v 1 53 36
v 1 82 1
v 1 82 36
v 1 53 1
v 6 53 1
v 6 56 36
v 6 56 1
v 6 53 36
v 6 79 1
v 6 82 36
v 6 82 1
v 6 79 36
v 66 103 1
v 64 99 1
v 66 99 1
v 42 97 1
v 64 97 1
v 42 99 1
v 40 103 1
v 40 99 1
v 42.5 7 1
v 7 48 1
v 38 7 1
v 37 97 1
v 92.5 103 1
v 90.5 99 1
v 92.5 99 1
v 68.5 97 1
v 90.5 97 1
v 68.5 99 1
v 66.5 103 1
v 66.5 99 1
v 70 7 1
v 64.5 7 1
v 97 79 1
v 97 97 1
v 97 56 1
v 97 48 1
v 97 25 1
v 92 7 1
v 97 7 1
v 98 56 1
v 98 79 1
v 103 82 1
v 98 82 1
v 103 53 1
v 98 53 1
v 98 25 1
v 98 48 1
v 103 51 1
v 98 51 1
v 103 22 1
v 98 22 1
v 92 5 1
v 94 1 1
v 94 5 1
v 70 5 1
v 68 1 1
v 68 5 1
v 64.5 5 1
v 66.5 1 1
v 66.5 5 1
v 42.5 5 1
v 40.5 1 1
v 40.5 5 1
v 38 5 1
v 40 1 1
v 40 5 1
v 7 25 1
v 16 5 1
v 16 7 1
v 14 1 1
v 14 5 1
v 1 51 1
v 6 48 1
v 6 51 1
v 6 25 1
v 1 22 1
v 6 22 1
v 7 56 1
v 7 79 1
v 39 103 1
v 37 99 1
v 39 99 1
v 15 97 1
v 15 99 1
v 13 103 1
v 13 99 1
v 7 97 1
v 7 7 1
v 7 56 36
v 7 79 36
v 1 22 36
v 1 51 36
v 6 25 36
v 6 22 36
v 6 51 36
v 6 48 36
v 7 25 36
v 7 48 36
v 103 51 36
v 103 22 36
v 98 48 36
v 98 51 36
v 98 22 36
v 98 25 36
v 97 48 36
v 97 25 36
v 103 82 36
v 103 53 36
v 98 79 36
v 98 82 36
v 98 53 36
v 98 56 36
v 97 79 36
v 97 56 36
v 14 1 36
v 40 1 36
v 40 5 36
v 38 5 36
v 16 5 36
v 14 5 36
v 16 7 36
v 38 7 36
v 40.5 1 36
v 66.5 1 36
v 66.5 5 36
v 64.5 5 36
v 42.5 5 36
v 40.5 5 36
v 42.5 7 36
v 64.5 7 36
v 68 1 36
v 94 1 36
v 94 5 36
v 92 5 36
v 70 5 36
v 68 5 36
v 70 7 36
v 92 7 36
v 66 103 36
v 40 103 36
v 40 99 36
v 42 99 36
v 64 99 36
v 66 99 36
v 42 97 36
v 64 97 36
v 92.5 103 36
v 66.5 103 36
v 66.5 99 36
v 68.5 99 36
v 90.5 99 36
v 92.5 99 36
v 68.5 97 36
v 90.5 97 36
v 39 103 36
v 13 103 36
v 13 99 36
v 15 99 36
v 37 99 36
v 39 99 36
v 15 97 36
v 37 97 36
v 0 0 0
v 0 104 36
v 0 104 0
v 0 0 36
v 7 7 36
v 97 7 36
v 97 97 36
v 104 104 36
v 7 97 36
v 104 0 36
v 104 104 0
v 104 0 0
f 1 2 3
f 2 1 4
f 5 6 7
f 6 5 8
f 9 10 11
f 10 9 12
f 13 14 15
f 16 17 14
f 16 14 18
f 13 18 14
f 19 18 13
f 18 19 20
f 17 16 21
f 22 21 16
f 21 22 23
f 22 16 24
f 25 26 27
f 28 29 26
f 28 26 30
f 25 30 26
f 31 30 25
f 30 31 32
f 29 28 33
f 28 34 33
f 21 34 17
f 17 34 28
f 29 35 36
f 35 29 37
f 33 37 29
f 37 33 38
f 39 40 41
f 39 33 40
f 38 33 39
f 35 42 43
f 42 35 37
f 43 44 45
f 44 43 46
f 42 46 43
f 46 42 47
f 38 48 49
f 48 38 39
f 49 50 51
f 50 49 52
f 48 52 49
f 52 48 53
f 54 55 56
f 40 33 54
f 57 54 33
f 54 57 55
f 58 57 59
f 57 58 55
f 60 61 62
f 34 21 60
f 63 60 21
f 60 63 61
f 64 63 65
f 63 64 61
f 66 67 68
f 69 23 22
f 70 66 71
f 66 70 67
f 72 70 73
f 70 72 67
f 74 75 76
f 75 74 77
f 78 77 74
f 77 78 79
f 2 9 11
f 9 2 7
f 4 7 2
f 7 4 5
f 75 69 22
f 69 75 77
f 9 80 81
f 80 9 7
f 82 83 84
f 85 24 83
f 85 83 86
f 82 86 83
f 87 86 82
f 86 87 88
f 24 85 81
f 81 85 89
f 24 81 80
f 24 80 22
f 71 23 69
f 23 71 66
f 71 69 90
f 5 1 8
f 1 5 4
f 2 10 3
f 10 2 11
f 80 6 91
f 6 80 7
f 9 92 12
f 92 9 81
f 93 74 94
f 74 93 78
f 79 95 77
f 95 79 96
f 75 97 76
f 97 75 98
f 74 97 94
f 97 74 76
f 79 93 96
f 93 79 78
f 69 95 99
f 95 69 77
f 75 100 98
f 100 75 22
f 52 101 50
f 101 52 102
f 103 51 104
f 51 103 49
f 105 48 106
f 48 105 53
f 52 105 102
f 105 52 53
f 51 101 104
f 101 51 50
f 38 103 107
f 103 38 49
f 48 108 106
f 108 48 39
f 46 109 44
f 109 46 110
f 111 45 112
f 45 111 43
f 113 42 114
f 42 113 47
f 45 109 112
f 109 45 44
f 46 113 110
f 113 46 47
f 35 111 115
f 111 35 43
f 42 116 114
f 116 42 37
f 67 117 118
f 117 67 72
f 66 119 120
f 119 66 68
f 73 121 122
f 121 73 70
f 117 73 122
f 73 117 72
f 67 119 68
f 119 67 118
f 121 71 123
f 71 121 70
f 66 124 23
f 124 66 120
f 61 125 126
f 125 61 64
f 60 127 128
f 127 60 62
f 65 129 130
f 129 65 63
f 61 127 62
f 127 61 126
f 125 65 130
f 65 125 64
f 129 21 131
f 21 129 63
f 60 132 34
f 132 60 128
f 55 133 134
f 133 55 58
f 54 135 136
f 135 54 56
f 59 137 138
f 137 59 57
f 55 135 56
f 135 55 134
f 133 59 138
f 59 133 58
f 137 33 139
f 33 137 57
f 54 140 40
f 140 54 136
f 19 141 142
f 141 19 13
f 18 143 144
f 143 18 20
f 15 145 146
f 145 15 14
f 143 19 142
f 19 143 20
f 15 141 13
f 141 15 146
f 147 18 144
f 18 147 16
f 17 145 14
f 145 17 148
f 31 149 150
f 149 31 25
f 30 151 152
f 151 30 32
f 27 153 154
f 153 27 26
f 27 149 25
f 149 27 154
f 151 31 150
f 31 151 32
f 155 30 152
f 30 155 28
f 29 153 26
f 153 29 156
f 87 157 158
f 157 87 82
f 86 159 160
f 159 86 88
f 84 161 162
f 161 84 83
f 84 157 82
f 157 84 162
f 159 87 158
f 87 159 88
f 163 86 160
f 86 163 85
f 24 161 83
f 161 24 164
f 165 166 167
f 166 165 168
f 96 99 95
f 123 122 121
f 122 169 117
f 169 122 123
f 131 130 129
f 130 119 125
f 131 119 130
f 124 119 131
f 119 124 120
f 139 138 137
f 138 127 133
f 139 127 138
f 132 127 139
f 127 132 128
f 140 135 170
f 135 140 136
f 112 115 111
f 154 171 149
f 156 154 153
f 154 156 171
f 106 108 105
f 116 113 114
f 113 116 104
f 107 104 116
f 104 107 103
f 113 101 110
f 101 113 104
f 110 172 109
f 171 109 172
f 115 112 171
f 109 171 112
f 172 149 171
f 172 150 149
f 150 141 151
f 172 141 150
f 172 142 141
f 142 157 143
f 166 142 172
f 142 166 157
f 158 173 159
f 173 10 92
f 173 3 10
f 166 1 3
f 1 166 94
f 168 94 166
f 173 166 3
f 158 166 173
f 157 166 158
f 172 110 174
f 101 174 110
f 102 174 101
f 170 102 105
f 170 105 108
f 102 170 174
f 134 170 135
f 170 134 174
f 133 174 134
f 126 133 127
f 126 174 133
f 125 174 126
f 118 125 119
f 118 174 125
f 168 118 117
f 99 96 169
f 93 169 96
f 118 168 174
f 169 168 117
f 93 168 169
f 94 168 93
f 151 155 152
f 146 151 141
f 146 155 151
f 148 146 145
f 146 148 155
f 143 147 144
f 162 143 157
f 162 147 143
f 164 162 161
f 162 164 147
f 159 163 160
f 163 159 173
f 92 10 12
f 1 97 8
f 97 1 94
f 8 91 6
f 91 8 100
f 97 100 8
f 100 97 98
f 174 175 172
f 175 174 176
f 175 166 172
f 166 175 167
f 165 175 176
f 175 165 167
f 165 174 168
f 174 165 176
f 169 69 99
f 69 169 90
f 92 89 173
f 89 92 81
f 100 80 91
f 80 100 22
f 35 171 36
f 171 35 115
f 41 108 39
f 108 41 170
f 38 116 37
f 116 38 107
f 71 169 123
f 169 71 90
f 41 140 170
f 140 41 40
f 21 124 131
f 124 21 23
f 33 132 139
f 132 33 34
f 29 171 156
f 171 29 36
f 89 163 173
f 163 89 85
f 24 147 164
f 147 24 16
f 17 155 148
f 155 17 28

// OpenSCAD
BOX_X = 104;
BOX_Y = 104;
BOX_Z = 36;

THICK = 1;
MARGIN = 6;


MODEL_W = 4;
MODEL_L = 26;
MODEL_M = 2;

DS_MODEL_W = 5;
DS_MODEL_L = 29;
DS_MODEL_M = 3;

difference() {
    cube(size = [
        BOX_X,
        BOX_Y, 
        BOX_Z]);

    translate([
        MARGIN + THICK, 
        MARGIN + THICK, 
        THICK]) {
            
        cube(size = [
            BOX_X - (MARGIN * 2) - (THICK * 2),
            BOX_Y - (MARGIN * 2) - (THICK * 2),
            BOX_Z]);
    }

    ds_modelSlot(THICK, (BOX_Y / 2) + 1, 0);
    ds_modelSlot(THICK, (BOX_Y / 2) - DS_MODEL_L - 1, 0);

    ds_modelSlot(THICK - BOX_X, -((BOX_Y / 2) - 1), 180);
    ds_modelSlot(THICK - BOX_X, -((BOX_Y / 2) + DS_MODEL_L + 1), 180);

    modelSlot(THICK, -40, 90);
    modelSlot(THICK, -((BOX_Y / 2) + (DS_MODEL_L / 2)), 90);
    modelSlot(THICK, -94, 90);
    
    modelSlot(THICK - BOX_X, 40, 270);
    modelSlot(THICK - BOX_X, (BOX_Y / 2) + (DS_MODEL_L / 2), 270);
    modelSlot(THICK - BOX_X, 13, 270);

    
    //modelSlot(90, 0, 0);
    //modelSlot(180, 0, 0);
    //modelSlot(270, 0, 0);
}

module modelSlot(x, y, rot) {
    rotate([0, 0, rot]) {
        translate([x, y, THICK]) {
            cube(size = [
                MODEL_W,
                MODEL_L,
                BOX_Z]);
        }        
        
        translate([x + MODEL_M, y + MODEL_M, THICK]) {
            cube(size = [
                MODEL_W + 2,
                MODEL_L - (MODEL_M * 2),
                BOX_Z]);
        }
    }
}

module ds_modelSlot(x, y, rot) {
    rotate([0, 0, rot]) {
        translate([x, y, THICK]) {
            cube(size = [
                DS_MODEL_W,
                DS_MODEL_L,
                BOX_Z]);
        }        
        
        translate([x + DS_MODEL_M, y + DS_MODEL_M, THICK]) {
            cube(size = [
                DS_MODEL_W + 2,
                DS_MODEL_L - (DS_MODEL_M * 2),
                BOX_Z]);
        }
    }
}
